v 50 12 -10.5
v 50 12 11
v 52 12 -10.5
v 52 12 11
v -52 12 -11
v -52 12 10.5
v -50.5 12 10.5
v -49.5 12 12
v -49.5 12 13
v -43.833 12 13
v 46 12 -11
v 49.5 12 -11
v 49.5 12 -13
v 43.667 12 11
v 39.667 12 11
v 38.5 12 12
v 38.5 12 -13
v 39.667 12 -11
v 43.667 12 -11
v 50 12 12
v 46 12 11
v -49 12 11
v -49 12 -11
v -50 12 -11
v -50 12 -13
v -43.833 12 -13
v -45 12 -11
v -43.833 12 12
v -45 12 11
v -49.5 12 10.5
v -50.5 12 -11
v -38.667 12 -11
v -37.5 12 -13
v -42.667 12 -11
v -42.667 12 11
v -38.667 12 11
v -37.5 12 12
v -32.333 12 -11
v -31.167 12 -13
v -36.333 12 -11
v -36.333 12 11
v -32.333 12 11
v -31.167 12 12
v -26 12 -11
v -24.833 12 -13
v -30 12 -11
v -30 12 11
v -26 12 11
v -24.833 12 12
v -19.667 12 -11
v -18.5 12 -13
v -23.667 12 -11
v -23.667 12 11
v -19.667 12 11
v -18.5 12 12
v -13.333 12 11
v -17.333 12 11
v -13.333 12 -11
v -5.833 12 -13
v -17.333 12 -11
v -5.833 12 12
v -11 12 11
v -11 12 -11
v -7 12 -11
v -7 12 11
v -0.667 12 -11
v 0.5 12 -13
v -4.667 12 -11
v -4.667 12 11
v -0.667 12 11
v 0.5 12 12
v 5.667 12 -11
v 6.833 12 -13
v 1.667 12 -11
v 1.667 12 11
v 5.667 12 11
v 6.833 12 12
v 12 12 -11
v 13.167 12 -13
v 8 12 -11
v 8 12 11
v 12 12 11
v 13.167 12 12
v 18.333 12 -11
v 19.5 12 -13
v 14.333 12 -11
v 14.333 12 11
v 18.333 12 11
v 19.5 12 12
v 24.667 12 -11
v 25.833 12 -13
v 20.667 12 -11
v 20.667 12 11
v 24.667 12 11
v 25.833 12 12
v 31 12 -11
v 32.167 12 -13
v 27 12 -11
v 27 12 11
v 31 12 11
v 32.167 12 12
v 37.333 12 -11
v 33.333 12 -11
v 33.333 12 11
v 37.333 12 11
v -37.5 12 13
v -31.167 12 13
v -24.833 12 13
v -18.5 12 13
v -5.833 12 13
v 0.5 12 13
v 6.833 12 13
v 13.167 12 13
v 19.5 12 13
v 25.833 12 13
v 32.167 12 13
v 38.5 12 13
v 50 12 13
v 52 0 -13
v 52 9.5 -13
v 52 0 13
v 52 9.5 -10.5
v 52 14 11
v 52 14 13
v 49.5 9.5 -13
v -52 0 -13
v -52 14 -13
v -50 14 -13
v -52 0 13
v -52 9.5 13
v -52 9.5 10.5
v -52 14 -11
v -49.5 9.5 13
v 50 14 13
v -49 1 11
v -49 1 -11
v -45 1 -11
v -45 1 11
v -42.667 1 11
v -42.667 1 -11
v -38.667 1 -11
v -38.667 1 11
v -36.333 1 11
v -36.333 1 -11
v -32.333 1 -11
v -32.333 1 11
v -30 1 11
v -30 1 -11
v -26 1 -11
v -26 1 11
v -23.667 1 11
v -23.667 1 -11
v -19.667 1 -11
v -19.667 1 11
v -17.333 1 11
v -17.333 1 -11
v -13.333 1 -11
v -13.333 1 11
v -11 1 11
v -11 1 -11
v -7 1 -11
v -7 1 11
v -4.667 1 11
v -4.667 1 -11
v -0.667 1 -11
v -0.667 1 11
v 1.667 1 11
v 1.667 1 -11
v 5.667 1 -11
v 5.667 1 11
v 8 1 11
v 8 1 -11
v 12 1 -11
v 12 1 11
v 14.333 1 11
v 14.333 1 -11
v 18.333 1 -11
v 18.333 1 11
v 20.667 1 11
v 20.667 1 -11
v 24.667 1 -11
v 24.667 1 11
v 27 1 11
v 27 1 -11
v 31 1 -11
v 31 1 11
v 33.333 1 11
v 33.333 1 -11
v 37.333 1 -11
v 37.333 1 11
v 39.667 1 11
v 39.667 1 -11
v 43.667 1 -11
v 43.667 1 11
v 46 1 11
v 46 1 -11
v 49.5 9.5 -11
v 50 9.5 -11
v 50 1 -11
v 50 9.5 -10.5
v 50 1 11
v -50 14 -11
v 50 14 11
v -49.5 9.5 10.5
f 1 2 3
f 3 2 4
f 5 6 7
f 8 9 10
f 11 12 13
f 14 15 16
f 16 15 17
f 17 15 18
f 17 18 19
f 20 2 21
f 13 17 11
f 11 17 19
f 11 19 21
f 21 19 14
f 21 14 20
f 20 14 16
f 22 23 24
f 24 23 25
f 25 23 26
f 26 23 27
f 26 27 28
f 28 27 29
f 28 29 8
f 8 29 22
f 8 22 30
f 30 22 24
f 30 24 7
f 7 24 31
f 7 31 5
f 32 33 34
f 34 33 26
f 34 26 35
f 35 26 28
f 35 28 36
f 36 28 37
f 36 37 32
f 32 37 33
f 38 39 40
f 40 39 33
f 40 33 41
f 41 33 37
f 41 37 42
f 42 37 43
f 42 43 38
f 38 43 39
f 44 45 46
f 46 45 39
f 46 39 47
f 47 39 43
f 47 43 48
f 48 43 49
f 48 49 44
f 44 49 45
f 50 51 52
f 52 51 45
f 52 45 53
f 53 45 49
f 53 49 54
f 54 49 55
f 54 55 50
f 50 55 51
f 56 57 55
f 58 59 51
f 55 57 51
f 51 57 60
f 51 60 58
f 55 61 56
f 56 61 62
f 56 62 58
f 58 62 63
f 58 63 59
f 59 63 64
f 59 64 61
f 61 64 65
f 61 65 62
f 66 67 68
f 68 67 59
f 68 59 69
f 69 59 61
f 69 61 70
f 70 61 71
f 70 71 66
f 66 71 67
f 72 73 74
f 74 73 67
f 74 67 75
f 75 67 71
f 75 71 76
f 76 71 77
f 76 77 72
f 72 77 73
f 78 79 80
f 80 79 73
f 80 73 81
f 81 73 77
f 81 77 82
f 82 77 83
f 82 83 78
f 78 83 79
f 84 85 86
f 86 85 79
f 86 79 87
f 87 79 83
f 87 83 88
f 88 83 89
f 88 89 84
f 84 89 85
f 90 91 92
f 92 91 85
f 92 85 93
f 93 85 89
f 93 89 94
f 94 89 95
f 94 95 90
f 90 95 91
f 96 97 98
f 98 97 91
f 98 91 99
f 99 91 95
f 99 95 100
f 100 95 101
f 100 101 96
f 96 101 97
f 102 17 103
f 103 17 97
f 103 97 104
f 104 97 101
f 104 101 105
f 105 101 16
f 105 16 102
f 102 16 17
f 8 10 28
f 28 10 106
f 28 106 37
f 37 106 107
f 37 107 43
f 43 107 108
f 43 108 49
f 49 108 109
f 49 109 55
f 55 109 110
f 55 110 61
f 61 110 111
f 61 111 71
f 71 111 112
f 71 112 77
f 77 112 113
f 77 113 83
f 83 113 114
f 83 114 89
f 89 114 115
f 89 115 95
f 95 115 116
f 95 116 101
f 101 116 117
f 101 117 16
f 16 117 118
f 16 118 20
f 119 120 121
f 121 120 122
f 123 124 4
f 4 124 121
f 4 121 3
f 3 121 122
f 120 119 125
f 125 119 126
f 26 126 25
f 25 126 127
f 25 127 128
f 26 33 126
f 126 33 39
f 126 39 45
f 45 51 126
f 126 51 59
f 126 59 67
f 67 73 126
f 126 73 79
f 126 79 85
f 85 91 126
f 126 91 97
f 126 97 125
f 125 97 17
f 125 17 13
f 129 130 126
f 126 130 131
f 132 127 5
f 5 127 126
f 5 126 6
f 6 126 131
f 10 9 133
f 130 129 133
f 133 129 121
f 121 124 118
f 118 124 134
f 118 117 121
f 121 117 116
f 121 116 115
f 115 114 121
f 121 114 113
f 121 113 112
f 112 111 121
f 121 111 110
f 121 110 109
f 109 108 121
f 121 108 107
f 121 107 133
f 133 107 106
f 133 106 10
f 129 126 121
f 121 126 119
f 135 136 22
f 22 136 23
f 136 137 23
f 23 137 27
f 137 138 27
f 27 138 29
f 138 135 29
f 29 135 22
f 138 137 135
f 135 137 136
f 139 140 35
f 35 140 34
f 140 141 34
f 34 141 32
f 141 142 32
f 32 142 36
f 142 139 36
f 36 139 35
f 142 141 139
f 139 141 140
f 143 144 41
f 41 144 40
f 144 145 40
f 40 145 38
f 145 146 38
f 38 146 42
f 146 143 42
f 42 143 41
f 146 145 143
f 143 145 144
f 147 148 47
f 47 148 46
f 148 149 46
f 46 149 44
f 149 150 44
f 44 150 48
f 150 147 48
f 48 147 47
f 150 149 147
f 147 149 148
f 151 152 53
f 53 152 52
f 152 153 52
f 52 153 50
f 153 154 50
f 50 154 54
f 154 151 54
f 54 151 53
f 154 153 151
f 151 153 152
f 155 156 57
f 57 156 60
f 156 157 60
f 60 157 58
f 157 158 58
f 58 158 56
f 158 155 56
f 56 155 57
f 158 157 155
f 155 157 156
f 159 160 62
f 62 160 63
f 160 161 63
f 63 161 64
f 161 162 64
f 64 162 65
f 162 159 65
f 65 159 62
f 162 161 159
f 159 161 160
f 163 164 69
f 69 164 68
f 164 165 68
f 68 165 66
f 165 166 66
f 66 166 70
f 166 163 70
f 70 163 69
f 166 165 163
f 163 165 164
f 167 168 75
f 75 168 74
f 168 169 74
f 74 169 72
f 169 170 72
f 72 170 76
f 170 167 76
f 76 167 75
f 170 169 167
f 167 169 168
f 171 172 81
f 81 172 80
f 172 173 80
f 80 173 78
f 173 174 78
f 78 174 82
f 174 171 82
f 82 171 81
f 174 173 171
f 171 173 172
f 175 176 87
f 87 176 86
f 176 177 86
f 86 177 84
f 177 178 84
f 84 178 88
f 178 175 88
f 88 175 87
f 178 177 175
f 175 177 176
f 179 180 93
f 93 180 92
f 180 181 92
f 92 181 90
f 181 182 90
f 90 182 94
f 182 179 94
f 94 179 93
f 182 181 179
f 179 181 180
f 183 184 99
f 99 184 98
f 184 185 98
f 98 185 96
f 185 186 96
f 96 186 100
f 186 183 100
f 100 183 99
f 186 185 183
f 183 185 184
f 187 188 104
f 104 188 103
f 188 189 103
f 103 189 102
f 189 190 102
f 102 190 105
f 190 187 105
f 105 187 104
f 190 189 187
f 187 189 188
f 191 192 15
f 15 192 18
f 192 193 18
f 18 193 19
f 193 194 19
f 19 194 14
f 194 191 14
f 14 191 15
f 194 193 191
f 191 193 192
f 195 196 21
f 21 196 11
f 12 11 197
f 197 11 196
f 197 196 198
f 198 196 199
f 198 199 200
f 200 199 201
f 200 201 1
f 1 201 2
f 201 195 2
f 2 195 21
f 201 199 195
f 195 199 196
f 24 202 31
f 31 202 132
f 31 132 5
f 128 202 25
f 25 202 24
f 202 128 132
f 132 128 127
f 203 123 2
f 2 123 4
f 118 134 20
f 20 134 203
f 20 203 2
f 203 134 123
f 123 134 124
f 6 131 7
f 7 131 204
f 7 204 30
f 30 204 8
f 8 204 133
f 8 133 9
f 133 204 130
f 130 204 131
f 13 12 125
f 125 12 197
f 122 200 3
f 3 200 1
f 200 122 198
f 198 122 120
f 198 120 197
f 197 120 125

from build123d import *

# Parameters (mm, degrees)
SKETCH1_W           = 104
SKETCH1_H           = 26
BOSS_EXTRUDE1_DEPTH = 12
SKETCH2_W           = 4
SKETCH2_H           = 22
CUT_EXTRUDE1_DEPTH  = 11
SKETCH3_W           = 2
SKETCH3_H           = 2
BOSS_EXTRUDE2_DEPTH = 2
SKETCH4_W           = 2.5
SKETCH4_H           = 2.5
CUT_EXTRUDE2_DEPTH  = 2.5


with BuildPart() as part:
    # Sketch1 → Boss-Extrude1 (new body)
    with BuildSketch(Plane(origin=(0, 0, 0), x_dir=(1, 0, 0), z_dir=(0, 1, 0))):
        Rectangle(SKETCH1_W, SKETCH1_H)
    extrude(amount=BOSS_EXTRUDE1_DEPTH)

    # Sketch2 → Cut-Extrude1 (cut)
    with BuildSketch(Plane(origin=(0, 12, 0), x_dir=(1, 0, 0), z_dir=(0, 1, 0))):
        with Locations((-47, 0)):
            Rectangle(SKETCH2_W, SKETCH2_H)
        with Locations((-40.666666667, 0)):
            Rectangle(SKETCH2_W, SKETCH2_H)
        with Locations((-34.333333333, 0)):
            Rectangle(SKETCH2_W, SKETCH2_H)
        with Locations((-28, 0)):
            Rectangle(SKETCH2_W, SKETCH2_H)
        with Locations((-21.666666667, 0)):
            Rectangle(SKETCH2_W, SKETCH2_H)
        with Locations((-15.333333333, 0)):
            Rectangle(SKETCH2_W, SKETCH2_H)
        with Locations((-9, 0)):
            Rectangle(SKETCH2_W, SKETCH2_H)
        with Locations((-2.666666667, 0)):
            Rectangle(SKETCH2_W, SKETCH2_H)
        with Locations((3.666666667, 0)):
            Rectangle(SKETCH2_W, SKETCH2_H)
        with Locations((10, 0)):
            Rectangle(SKETCH2_W, SKETCH2_H)
        with Locations((16.333333333, 0)):
            Rectangle(SKETCH2_W, SKETCH2_H)
        with Locations((22.666666667, 0)):
            Rectangle(SKETCH2_W, SKETCH2_H)
        with Locations((29, 0)):
            Rectangle(SKETCH2_W, SKETCH2_H)
        with Locations((35.333333333, 0)):
            Rectangle(SKETCH2_W, SKETCH2_H)
        with Locations((41.666666667, 0)):
            Rectangle(SKETCH2_W, SKETCH2_H)
        with Locations((48, 0)):
            Rectangle(SKETCH2_W, SKETCH2_H)
    extrude(amount=-CUT_EXTRUDE1_DEPTH, mode=Mode.SUBTRACT)

    # Sketch3 → Boss-Extrude2 (add)
    with BuildSketch(Plane(origin=(0, 12, 0), x_dir=(1, 0, 0), z_dir=(0, 1, 0))):
        with Locations((-51, 12)):
            Rectangle(SKETCH3_W, SKETCH3_H)
        with Locations((51, -12)):
            Rectangle(SKETCH3_W, SKETCH3_H)
    extrude(amount=BOSS_EXTRUDE2_DEPTH)

    # Sketch4 → Cut-Extrude2 (cut)
    with BuildSketch(Plane(origin=(0, 12, 0), x_dir=(1, 0, 0), z_dir=(0, 1, 0))):
        with Locations((-50.75, -11.75)):
            Rectangle(SKETCH4_W, SKETCH4_H)
        with Locations((50.75, 11.75)):
            Rectangle(SKETCH4_W, SKETCH4_H)
    extrude(amount=-CUT_EXTRUDE2_DEPTH, mode=Mode.SUBTRACT)


solid = part.part
